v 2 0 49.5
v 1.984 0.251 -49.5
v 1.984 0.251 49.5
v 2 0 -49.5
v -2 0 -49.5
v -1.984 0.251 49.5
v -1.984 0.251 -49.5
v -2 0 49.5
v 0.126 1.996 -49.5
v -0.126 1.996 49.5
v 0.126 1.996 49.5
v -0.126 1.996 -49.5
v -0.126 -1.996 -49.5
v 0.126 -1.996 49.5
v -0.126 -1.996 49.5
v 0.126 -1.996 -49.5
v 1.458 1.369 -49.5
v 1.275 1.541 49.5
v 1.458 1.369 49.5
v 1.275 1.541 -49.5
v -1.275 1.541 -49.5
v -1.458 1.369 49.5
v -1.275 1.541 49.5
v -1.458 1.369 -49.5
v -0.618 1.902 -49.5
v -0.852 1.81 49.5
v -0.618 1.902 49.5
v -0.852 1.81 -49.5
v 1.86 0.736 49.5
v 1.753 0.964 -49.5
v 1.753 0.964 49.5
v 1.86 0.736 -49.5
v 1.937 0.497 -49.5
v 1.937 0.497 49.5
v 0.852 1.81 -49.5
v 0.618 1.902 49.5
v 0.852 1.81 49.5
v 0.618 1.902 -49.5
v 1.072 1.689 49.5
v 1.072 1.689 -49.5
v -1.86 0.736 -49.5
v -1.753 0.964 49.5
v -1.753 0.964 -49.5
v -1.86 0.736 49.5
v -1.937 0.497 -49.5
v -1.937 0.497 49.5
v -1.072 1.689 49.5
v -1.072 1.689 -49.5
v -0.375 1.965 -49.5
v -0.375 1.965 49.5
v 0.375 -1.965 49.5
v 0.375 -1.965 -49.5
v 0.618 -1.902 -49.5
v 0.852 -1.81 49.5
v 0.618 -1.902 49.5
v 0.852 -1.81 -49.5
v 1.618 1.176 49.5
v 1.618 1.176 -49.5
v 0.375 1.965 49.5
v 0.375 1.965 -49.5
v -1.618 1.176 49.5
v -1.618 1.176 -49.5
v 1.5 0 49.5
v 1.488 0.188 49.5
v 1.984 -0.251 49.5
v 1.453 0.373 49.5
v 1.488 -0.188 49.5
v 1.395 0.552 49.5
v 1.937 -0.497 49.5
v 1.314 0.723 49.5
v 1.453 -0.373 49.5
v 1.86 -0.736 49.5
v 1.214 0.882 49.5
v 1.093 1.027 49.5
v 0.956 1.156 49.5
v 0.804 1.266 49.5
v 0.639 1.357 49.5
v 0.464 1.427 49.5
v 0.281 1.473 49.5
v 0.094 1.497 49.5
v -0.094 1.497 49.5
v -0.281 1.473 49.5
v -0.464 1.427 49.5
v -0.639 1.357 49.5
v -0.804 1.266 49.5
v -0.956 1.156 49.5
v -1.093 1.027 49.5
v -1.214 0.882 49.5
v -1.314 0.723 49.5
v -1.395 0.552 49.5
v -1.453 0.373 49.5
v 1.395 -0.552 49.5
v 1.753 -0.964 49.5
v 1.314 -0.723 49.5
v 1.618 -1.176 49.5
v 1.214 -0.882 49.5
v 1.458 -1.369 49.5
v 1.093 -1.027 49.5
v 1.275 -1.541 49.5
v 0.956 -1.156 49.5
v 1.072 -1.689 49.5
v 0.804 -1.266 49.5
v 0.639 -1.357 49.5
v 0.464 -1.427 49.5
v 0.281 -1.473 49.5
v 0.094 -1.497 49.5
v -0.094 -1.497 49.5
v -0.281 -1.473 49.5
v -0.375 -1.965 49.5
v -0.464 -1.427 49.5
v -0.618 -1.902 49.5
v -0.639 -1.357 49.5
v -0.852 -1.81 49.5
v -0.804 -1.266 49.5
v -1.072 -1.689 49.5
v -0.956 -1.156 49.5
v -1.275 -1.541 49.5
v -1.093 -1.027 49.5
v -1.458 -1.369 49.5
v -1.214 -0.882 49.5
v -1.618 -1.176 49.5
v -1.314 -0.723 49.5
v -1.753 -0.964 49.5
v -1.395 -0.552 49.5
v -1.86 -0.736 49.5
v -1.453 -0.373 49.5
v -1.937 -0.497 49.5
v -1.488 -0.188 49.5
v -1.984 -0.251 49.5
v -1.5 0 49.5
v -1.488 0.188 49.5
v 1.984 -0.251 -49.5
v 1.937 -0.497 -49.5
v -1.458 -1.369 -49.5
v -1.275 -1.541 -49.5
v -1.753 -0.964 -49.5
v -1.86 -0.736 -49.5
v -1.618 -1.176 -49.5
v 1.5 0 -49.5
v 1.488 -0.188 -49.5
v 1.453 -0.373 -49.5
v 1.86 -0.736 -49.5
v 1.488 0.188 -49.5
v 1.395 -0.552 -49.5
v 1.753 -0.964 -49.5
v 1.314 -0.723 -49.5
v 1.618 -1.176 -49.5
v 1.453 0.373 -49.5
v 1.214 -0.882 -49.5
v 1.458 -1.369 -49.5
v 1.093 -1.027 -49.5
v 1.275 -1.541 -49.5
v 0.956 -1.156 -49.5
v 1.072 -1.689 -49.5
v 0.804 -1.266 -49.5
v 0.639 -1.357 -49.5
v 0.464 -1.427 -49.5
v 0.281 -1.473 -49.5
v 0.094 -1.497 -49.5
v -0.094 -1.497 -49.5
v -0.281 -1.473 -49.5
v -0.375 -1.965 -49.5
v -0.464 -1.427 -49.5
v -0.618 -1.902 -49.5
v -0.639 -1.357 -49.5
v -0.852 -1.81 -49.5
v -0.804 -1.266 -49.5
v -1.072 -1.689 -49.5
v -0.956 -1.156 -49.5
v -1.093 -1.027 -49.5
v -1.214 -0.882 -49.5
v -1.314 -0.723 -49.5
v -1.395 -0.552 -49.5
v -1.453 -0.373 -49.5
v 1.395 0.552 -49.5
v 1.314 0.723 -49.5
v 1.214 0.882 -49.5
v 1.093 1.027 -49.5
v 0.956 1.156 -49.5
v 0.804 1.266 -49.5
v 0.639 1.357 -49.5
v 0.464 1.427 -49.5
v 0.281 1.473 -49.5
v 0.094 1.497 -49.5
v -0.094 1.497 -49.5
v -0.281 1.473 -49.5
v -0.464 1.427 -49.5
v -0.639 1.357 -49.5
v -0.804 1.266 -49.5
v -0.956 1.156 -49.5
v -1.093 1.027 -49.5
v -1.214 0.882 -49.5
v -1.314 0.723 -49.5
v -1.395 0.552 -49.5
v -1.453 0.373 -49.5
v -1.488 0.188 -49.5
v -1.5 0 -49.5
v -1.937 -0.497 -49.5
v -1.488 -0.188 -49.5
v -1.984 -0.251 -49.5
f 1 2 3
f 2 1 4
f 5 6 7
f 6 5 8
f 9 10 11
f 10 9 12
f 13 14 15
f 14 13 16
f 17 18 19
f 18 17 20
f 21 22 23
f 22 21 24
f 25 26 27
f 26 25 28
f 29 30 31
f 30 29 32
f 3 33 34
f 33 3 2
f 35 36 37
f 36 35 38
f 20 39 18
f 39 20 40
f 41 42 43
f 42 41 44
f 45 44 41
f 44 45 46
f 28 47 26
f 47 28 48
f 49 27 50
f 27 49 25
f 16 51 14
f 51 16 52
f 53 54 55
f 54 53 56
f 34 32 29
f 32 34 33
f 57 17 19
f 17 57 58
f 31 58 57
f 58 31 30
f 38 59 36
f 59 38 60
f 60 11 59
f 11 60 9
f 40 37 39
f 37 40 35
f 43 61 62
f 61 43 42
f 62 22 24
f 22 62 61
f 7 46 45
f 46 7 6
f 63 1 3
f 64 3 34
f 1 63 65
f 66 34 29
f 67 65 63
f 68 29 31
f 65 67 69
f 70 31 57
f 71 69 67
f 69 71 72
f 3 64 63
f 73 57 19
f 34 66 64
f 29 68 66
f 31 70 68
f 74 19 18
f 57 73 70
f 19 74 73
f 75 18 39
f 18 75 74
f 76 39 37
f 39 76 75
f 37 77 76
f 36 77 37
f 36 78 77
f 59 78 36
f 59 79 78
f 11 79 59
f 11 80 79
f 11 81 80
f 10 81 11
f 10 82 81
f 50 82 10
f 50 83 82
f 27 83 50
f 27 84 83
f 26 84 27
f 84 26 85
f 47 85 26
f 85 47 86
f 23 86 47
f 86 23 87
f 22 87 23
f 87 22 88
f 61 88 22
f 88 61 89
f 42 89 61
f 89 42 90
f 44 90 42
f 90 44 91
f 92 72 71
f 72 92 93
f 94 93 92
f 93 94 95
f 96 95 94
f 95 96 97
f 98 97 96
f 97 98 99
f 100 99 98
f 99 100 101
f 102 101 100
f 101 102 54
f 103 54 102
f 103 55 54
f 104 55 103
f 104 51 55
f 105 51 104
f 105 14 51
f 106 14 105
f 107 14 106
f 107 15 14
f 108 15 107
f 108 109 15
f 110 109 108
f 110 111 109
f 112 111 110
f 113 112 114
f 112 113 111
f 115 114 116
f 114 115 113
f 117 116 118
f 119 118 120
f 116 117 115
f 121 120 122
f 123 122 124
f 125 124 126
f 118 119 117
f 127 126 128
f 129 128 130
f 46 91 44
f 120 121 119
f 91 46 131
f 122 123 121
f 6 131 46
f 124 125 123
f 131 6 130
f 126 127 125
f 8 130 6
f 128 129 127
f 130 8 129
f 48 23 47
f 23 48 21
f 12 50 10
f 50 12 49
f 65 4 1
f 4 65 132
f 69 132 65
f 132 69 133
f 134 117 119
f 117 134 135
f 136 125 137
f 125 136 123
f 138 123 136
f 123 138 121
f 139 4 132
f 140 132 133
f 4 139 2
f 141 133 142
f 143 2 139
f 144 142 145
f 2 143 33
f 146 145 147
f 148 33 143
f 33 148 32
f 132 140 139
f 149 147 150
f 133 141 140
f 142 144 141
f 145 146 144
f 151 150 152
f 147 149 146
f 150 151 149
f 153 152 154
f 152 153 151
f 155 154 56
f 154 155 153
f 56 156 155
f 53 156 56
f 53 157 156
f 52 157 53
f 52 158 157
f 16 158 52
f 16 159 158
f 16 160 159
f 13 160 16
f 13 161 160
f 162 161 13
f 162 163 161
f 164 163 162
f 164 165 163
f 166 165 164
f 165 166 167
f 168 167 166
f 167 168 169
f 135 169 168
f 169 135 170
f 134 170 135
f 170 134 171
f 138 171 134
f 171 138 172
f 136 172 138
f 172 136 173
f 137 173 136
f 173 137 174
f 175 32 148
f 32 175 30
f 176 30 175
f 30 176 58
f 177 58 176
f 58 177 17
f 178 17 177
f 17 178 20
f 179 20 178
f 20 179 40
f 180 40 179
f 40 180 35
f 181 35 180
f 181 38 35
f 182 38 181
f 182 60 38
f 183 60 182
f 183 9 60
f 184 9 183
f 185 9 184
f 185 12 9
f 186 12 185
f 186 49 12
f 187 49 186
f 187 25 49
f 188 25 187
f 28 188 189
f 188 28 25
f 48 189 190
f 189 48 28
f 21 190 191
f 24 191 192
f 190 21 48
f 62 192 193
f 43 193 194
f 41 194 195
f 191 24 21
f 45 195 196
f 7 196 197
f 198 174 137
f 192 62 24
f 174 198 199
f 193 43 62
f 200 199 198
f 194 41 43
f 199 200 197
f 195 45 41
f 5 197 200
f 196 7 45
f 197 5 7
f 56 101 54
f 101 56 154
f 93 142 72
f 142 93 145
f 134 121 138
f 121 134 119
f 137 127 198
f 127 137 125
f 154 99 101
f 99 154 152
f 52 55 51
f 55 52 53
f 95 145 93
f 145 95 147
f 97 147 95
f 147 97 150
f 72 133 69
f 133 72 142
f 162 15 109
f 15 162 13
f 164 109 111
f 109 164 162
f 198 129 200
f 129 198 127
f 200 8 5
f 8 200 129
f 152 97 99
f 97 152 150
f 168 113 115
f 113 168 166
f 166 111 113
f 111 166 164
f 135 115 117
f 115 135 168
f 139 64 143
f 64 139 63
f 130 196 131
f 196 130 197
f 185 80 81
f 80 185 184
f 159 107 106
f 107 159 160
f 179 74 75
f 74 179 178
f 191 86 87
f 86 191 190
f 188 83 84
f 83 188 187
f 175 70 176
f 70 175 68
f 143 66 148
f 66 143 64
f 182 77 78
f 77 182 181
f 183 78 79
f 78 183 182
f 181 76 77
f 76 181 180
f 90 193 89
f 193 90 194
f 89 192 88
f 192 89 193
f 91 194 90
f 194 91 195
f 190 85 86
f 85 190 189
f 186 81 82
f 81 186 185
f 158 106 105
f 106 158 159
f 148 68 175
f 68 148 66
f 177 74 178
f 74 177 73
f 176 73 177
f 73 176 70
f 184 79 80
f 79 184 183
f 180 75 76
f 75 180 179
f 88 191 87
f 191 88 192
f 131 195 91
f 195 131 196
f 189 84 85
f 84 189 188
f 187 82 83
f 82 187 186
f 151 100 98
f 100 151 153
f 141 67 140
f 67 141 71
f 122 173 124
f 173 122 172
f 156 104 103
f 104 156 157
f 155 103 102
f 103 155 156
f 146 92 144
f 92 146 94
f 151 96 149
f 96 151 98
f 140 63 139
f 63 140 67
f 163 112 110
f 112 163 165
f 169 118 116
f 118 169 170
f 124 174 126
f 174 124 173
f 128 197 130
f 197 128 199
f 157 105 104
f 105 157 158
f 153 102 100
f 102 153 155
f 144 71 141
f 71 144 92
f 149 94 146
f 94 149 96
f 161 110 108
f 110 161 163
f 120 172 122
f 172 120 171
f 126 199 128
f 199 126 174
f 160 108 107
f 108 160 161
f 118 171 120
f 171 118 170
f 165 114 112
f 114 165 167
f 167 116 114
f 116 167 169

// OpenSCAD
$fn = 50;


difference() {
	union() {
		translate(v = [0, 0, -49.5000000000]) {
			cylinder(h = 99, r = 2.0000000000);
		}
	}
	union() {
		translate(v = [0, 0, -100.0000000000]) {
			cylinder(h = 200, r = 1.5000000000);
		}
	}
}
